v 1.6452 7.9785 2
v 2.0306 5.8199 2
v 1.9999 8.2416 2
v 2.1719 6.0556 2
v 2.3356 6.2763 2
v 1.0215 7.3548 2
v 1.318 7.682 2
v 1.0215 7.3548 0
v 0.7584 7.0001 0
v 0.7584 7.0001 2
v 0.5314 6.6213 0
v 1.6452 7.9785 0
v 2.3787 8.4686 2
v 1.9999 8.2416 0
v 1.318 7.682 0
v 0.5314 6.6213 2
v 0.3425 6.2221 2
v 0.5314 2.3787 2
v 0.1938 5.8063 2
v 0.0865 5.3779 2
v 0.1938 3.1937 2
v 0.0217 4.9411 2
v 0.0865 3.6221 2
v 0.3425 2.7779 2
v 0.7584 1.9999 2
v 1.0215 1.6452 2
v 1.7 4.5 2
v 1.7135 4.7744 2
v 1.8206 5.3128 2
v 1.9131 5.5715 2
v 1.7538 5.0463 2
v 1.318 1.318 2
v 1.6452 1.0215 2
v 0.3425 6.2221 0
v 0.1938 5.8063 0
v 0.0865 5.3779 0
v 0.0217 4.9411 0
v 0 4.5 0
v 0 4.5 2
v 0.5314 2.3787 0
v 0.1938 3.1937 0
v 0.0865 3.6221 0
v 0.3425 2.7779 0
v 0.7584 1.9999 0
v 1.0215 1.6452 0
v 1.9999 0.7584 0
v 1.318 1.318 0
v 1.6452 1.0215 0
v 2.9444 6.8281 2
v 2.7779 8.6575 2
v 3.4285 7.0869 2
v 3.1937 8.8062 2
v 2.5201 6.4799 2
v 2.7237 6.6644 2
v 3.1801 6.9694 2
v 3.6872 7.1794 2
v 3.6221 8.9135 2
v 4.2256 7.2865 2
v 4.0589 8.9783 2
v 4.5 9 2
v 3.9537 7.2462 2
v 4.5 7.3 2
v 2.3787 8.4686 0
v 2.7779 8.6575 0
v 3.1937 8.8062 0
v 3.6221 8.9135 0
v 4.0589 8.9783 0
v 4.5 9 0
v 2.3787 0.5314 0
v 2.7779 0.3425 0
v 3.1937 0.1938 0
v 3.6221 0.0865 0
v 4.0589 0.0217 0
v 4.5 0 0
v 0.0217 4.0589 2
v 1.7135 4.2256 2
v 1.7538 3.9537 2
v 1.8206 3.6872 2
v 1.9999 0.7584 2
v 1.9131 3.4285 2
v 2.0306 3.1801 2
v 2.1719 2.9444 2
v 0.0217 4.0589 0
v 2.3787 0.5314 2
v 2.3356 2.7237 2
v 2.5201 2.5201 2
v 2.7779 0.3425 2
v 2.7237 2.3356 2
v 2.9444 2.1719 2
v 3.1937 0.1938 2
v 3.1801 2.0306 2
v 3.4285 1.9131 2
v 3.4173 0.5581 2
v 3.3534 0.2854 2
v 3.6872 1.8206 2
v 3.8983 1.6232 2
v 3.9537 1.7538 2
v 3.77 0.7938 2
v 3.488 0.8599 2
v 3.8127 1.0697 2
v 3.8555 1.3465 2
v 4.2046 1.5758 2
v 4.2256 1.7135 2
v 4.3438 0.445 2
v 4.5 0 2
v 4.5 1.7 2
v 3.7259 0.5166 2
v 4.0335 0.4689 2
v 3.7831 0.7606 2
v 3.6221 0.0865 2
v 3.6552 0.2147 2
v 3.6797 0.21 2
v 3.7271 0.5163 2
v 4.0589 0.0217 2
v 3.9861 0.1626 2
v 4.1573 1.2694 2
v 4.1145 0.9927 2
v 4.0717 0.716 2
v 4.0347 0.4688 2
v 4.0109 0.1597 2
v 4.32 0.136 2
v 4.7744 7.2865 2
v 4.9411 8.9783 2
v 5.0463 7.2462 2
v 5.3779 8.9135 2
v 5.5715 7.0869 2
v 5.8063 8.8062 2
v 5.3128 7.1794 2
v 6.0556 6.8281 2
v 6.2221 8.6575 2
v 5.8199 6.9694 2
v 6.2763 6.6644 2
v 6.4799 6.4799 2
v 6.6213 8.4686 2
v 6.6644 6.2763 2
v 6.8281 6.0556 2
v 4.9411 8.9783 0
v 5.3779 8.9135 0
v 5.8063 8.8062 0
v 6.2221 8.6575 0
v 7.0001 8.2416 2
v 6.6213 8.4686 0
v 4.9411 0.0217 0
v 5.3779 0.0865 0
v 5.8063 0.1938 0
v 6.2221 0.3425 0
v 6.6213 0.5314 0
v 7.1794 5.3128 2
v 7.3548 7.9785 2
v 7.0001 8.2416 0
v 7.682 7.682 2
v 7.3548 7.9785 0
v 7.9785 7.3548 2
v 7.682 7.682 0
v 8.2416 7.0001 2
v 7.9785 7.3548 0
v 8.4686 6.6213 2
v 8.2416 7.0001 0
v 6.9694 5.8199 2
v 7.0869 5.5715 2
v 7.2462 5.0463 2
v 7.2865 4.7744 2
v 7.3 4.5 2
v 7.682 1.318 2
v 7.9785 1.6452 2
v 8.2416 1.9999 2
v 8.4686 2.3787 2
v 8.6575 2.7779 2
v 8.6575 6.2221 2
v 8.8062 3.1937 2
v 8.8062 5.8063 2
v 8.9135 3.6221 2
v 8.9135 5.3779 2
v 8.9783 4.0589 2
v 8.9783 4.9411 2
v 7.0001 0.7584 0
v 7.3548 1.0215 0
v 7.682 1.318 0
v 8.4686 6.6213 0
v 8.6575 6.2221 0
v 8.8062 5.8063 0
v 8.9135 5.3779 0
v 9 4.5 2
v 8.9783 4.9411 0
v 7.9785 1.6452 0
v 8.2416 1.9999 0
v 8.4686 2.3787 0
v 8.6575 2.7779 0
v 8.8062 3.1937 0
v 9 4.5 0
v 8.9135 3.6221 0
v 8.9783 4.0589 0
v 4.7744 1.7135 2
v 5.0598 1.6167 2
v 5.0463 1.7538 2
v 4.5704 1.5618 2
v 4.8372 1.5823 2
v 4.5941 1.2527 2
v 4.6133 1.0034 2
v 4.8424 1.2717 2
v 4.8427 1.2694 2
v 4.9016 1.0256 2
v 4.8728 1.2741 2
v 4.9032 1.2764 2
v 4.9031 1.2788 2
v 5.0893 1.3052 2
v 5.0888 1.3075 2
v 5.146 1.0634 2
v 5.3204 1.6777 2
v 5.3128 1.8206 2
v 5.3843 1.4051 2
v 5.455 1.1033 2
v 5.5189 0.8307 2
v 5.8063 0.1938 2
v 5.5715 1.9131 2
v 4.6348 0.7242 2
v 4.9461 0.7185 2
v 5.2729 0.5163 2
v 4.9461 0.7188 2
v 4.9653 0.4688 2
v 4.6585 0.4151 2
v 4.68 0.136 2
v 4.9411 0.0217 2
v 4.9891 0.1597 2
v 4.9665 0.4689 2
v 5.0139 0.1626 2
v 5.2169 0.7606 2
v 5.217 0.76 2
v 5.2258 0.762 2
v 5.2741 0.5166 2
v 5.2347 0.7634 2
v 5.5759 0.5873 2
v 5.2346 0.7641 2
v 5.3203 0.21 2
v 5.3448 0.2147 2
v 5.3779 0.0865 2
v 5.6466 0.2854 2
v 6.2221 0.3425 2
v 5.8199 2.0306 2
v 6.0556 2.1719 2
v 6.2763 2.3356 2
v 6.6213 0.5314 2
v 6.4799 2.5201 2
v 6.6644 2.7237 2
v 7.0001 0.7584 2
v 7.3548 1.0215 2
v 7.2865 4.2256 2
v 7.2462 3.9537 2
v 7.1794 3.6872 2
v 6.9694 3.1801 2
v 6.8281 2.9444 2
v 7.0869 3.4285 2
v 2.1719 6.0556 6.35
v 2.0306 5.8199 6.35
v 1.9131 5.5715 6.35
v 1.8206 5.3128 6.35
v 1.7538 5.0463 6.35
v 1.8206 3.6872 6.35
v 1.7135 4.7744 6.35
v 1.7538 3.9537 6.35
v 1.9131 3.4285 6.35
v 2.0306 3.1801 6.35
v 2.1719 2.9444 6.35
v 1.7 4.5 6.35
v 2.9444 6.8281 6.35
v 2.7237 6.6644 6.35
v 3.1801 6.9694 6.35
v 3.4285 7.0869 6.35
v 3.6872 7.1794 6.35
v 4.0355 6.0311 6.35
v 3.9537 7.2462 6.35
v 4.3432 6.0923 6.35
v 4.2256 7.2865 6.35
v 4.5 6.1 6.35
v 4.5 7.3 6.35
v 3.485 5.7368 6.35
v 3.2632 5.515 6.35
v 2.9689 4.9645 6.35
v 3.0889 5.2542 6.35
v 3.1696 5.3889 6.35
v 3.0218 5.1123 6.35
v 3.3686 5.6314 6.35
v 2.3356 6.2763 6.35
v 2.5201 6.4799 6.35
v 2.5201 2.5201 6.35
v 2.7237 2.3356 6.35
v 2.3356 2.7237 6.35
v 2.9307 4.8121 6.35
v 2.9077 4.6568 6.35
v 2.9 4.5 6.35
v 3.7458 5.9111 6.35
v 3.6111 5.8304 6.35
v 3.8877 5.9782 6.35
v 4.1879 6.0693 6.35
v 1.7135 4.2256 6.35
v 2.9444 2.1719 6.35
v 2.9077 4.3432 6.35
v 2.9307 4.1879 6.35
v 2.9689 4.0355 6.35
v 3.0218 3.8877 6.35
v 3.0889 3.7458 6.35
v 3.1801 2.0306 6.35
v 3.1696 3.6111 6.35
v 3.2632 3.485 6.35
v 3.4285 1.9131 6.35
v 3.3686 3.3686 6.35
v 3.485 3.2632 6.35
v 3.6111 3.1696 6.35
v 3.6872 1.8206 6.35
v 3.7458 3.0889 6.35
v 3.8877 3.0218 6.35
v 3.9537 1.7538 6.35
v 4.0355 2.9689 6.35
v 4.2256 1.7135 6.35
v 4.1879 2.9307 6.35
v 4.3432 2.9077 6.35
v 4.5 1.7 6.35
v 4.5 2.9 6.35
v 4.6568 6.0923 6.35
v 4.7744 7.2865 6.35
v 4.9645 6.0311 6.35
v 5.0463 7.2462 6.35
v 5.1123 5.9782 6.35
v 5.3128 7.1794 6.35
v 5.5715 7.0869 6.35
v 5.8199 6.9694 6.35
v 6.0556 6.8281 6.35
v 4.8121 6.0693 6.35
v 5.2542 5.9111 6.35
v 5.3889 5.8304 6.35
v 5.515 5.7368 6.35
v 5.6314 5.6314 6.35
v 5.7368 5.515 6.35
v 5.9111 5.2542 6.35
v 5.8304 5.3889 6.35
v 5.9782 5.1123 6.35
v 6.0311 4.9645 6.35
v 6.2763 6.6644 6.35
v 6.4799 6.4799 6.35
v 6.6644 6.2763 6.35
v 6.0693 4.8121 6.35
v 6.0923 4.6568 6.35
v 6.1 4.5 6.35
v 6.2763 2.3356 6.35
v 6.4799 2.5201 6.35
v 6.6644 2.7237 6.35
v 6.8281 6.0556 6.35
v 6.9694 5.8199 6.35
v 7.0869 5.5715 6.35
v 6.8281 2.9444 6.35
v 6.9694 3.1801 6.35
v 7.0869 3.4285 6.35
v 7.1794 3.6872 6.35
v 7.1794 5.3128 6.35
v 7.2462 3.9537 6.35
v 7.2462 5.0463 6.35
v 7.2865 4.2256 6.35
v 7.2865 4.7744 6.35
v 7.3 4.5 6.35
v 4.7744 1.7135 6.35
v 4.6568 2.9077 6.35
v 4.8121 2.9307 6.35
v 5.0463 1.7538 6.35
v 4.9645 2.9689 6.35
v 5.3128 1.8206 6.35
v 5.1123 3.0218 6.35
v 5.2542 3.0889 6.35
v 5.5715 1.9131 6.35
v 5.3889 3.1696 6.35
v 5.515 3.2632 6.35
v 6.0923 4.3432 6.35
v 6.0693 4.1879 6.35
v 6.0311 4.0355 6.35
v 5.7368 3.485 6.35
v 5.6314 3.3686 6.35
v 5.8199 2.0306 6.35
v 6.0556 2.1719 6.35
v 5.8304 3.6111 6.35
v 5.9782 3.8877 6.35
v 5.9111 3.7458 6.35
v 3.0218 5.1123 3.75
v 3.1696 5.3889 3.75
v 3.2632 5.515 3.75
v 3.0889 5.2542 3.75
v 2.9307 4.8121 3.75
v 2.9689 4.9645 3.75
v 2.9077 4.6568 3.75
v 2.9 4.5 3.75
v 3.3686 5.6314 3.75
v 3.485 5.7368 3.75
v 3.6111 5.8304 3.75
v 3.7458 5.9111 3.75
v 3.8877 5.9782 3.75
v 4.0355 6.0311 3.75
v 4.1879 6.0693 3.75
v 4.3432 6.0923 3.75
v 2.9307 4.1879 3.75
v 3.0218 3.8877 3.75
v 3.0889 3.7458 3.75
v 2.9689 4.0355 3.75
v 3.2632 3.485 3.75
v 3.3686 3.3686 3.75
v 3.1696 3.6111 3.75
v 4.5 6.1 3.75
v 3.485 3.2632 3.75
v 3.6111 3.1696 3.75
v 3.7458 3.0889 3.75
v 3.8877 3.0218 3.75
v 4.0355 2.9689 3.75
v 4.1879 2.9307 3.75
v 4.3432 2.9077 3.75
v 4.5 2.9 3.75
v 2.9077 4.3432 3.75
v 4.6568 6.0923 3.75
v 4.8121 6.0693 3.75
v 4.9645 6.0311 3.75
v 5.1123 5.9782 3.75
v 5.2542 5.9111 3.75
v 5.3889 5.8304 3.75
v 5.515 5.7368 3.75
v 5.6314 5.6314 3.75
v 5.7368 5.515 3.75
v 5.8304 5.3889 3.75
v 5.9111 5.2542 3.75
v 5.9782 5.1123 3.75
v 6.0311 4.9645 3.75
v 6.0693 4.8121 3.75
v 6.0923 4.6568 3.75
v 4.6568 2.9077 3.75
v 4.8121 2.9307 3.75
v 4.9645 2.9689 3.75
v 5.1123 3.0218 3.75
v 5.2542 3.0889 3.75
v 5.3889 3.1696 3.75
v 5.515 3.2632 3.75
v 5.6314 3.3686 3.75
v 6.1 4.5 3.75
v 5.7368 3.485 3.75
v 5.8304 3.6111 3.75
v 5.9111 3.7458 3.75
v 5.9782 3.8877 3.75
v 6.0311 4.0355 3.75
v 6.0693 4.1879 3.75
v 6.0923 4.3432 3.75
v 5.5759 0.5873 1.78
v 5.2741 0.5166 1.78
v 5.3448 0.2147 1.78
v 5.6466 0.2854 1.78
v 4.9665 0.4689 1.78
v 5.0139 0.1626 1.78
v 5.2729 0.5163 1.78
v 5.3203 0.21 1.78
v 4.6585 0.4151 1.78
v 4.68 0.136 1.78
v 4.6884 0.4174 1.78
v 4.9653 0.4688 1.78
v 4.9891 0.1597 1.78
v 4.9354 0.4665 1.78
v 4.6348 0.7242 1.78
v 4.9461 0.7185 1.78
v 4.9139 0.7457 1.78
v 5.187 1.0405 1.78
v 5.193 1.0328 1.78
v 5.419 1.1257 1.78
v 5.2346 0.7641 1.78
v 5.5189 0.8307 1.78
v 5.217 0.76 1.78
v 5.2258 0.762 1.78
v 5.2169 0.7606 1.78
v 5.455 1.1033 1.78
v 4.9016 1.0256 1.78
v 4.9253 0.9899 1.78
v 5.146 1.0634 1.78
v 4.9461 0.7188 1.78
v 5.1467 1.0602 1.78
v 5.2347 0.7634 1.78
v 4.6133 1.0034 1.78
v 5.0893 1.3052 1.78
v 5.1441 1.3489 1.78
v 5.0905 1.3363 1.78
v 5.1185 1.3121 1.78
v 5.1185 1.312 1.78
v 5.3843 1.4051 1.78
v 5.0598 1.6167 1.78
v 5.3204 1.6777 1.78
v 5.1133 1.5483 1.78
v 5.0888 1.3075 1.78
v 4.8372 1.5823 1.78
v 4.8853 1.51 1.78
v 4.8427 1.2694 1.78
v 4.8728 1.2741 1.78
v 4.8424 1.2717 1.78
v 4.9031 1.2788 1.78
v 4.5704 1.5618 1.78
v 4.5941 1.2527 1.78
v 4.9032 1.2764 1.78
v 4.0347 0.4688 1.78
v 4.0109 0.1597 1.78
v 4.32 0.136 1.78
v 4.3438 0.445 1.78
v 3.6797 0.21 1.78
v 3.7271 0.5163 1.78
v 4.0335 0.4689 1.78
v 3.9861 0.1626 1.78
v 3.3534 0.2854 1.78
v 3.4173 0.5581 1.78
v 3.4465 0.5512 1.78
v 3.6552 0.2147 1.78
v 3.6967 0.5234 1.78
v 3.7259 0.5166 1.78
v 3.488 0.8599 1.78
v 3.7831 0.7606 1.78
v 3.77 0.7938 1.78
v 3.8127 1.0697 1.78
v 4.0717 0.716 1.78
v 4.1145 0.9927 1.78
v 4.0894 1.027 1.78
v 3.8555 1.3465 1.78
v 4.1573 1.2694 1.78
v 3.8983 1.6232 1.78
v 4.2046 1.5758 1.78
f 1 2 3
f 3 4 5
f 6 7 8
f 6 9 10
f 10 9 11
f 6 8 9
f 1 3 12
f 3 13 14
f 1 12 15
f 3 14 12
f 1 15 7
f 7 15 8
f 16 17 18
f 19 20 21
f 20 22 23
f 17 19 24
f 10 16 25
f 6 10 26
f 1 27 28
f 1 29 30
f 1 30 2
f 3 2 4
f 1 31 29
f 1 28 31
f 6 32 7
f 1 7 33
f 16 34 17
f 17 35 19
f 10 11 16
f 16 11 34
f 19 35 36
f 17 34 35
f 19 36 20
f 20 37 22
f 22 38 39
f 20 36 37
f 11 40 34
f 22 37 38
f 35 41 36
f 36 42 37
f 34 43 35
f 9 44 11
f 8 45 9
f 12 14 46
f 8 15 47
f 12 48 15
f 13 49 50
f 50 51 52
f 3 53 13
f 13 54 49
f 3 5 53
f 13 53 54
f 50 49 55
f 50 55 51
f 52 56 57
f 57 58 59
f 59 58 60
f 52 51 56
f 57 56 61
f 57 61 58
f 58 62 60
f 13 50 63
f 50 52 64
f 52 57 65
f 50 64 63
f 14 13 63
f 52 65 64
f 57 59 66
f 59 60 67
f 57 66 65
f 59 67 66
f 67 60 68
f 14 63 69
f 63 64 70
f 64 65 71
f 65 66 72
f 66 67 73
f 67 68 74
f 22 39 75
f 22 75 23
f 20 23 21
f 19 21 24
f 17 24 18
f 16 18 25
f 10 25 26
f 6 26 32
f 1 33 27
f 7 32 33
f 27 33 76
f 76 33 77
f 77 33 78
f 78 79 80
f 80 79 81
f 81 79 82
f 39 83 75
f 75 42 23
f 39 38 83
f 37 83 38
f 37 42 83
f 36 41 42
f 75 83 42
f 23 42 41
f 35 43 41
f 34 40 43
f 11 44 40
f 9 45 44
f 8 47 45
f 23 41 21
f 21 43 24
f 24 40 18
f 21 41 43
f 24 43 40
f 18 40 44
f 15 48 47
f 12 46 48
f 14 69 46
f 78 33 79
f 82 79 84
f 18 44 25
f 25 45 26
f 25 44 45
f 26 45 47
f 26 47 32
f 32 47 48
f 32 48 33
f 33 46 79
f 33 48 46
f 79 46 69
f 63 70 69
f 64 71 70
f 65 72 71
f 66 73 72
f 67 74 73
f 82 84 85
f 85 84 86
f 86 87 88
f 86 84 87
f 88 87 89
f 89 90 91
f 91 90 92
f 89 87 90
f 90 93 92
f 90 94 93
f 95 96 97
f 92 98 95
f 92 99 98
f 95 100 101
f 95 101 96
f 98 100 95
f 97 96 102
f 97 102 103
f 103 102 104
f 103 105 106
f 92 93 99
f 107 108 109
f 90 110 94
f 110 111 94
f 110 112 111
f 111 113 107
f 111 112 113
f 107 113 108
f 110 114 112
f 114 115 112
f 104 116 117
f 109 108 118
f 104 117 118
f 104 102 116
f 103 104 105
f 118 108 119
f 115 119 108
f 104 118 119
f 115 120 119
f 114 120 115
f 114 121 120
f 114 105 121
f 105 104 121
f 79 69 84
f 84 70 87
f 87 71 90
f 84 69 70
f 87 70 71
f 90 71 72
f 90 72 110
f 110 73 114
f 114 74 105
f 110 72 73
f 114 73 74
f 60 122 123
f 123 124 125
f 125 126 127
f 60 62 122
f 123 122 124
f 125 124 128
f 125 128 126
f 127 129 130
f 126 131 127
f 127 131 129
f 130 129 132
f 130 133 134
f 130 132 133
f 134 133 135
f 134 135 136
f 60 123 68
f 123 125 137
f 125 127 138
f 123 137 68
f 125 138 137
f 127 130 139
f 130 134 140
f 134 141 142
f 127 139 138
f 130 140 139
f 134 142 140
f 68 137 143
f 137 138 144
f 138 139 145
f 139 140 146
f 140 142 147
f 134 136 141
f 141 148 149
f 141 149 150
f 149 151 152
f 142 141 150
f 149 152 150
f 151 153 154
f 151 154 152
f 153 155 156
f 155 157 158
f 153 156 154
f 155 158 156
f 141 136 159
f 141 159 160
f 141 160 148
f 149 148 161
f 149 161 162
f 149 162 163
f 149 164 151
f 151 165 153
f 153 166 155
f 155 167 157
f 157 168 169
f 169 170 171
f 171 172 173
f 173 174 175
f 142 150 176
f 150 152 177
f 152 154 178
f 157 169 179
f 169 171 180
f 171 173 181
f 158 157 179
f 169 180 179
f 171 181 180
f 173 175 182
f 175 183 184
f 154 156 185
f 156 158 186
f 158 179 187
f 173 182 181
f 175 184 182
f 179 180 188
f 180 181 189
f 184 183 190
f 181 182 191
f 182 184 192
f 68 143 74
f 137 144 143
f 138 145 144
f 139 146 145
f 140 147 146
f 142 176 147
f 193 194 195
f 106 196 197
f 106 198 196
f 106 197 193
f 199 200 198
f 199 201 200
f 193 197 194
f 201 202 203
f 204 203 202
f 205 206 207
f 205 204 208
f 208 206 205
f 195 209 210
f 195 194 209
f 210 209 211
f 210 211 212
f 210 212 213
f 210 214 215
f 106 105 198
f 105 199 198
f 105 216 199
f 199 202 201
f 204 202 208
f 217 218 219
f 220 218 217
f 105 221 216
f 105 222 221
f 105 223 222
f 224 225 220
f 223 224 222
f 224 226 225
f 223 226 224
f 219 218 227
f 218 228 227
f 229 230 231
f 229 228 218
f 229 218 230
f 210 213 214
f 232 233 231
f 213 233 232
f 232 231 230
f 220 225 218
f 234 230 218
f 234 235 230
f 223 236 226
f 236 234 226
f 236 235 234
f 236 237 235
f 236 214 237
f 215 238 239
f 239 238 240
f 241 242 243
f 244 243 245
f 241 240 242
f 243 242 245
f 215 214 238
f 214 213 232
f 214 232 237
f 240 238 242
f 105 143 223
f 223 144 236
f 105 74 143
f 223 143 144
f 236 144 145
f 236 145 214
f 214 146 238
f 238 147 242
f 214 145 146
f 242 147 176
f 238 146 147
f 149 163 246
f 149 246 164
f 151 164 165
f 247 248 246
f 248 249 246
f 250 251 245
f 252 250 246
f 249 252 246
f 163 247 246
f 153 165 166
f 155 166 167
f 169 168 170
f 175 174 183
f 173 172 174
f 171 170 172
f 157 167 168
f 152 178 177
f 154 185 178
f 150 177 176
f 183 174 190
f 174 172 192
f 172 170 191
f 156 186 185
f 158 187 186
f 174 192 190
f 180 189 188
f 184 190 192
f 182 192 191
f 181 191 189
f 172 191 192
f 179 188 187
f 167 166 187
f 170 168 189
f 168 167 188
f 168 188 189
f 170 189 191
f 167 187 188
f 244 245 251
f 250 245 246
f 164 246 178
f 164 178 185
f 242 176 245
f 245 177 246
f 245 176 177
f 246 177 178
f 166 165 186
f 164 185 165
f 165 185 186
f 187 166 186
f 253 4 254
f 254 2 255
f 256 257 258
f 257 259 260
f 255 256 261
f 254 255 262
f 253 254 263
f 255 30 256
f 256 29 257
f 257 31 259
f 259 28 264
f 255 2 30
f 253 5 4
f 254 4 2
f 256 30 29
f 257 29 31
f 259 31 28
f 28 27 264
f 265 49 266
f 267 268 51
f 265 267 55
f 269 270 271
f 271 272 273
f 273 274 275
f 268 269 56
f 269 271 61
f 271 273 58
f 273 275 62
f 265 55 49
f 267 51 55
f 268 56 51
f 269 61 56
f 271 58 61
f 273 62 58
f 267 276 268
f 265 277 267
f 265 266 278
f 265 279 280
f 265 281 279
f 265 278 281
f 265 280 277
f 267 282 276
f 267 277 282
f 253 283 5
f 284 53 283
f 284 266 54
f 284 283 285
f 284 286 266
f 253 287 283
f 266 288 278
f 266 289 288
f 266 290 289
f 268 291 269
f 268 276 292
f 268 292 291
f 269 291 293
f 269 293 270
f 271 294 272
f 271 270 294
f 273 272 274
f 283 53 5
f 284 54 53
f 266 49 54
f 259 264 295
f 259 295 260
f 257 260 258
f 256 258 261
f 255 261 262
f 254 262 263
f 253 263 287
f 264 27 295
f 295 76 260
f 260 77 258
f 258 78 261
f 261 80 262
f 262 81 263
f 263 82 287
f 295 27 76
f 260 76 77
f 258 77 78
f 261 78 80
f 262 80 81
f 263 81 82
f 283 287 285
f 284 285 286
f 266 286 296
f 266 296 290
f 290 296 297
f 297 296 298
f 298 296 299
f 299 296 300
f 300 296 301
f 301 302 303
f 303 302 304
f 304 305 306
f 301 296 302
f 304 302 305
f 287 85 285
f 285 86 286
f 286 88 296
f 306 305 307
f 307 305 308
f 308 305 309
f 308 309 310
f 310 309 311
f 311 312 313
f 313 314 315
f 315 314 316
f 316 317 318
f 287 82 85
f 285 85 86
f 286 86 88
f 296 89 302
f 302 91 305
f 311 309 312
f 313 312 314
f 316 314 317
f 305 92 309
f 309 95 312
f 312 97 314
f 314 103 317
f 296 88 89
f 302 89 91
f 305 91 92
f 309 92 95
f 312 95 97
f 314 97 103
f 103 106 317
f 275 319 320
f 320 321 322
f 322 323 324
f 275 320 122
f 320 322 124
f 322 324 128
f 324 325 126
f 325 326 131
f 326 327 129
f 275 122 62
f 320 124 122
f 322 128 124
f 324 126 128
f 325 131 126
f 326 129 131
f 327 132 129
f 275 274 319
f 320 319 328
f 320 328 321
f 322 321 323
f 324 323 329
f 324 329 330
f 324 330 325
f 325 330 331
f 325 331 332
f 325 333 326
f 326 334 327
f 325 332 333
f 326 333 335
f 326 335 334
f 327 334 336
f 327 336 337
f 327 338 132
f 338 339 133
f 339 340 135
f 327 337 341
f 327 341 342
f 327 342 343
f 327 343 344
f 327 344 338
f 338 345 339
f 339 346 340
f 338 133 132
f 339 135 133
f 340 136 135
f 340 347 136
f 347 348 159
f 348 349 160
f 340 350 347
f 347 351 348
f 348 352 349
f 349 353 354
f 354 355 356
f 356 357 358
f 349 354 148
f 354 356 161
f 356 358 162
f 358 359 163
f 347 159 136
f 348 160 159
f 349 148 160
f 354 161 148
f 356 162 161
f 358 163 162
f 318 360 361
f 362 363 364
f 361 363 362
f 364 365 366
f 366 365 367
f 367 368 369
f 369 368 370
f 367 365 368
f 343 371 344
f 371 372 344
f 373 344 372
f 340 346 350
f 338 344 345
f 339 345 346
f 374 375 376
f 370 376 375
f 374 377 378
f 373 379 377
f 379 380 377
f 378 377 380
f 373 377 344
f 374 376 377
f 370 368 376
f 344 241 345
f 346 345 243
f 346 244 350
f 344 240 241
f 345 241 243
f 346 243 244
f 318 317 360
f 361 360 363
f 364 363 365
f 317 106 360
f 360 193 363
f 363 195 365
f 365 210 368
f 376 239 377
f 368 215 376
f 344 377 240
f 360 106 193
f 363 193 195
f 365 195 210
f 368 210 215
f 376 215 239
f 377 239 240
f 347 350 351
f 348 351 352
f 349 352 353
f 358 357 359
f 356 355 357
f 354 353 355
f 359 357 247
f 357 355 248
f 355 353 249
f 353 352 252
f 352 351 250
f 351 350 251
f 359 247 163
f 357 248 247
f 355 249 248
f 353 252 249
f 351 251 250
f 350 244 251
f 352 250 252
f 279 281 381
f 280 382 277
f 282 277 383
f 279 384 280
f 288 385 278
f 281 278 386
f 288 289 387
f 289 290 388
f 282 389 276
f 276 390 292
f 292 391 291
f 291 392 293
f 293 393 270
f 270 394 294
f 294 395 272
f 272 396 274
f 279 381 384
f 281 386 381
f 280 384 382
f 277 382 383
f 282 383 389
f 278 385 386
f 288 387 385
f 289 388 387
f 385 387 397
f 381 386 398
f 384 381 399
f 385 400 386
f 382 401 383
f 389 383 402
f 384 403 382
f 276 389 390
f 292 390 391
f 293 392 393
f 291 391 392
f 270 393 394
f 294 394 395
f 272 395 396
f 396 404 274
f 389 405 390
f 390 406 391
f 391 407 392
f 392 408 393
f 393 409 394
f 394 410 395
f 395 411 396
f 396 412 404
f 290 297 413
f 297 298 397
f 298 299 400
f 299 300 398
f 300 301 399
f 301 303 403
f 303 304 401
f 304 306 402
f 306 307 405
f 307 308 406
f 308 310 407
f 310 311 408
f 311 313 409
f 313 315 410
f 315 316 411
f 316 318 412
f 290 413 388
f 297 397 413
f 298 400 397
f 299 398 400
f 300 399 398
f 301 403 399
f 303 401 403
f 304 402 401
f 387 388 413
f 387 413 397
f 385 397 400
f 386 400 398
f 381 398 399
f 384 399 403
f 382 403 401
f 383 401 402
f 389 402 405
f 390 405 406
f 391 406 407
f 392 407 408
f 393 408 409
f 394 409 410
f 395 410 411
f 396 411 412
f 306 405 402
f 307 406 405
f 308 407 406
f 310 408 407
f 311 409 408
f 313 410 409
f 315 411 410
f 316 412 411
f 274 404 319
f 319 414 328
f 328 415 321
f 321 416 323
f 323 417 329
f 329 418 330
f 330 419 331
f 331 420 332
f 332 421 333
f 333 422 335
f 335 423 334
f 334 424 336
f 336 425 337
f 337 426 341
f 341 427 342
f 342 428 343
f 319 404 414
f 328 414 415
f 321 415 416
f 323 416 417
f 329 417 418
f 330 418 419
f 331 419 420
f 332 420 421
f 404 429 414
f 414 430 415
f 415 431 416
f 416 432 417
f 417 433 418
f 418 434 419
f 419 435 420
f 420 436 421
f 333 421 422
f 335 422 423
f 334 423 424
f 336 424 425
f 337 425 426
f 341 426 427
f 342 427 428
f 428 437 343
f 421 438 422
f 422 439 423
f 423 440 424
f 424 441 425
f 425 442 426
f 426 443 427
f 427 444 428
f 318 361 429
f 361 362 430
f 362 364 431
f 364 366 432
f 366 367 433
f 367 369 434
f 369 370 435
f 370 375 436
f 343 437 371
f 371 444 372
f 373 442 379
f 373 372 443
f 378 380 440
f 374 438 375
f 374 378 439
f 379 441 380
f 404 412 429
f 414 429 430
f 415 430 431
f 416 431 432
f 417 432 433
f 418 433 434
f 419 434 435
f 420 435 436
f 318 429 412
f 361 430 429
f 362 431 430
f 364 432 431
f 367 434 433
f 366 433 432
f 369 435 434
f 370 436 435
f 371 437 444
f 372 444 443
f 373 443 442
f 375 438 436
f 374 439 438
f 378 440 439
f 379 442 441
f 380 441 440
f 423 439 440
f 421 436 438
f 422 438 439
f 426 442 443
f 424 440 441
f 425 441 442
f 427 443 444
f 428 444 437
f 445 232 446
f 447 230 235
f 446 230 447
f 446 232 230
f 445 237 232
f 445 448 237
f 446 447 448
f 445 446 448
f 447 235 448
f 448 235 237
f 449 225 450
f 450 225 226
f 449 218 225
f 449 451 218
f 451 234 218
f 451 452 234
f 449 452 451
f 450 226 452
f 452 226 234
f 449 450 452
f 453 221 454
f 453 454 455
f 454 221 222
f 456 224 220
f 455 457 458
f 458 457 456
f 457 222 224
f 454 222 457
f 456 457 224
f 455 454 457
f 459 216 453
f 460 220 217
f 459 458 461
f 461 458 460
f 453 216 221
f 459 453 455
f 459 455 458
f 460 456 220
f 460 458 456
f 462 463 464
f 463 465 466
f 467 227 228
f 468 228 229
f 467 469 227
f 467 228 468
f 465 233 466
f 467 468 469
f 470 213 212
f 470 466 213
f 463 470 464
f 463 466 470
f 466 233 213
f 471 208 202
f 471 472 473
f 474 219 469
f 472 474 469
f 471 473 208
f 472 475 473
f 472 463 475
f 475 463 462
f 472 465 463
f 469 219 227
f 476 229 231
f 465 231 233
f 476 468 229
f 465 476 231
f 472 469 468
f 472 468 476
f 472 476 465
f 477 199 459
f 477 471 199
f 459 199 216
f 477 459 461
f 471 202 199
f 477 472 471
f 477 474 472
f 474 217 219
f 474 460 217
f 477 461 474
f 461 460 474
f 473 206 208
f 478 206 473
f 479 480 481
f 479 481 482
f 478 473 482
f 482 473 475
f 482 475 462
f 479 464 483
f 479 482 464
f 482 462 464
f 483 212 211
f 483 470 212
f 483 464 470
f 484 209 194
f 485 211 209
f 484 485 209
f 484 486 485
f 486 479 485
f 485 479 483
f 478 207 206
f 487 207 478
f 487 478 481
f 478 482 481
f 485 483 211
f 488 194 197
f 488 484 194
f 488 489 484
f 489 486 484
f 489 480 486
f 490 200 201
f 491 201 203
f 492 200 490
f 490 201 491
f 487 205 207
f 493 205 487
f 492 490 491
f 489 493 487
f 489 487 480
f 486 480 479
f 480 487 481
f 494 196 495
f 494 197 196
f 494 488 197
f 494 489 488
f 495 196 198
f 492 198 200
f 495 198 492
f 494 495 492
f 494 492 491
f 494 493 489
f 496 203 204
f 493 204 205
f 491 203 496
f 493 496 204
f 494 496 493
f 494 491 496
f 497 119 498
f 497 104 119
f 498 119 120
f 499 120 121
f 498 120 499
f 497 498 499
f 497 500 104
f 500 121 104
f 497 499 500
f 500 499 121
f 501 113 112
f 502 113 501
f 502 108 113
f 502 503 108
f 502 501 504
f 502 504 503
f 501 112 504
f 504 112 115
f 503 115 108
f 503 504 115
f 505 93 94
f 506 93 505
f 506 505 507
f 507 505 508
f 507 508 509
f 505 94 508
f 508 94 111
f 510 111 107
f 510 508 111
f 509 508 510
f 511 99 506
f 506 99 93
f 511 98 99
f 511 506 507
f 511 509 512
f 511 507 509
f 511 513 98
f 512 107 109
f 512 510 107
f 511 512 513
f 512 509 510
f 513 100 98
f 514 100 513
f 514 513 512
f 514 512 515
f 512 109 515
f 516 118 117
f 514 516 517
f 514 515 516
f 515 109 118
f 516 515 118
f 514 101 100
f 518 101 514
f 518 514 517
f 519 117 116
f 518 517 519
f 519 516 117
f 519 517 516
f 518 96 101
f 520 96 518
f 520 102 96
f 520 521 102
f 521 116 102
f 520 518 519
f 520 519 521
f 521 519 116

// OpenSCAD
// 頂按式按鍵帽
$fn=64;
translate([-70.5,8.5,131.3]){rotate([180,0,0]){difference(){difference(){union(){translate([75,4,129.3]){cylinder(h=2,d1=9,d2=9,$fn=64);}translate([75,4,124.95]){cylinder(h=4.85,d1=5.6,d2=5.6,$fn=64);}}translate([75,4,124.75]){cylinder(h=2.8,d1=3.2,d2=3.2,$fn=64);}}union(){union(){union(){union(){union(){union(){union(){union(){union(){union(){union(){union(){union(){union(){union(){union(){union(){multmatrix([[-0.97364,0.22811,0,75.96035],[0.22811,0.97364,0,8.099],[0,0,-1,129.3],[0,0,0,1]]){translate([-0.155,-0.155,-0.22]){cube([0.31,0.31,0.34]);}}multmatrix([[-0.98825,0.15282,0,75.64339],[0.15282,0.98825,0,8.16055],[0,0,-1,129.3],[0,0,0,1]]){translate([-0.155,-0.155,-0.22]){cube([0.31,0.31,0.34]);}}}multmatrix([[-0.99706,0.07664,0,75.32264],[0.07664,0.99706,0,8.19762],[0,0,-1,129.3],[0,0,0,1]]){translate([-0.155,-0.155,-0.22]){cube([0.31,0.31,0.34]);}}}multmatrix([[-0.99706,0.07664,0,75.30118],[0.07664,0.99706,0,7.91844],[0,0,-1,129.3],[0,0,0,1]]){translate([-0.155,-0.155,-0.22]){cube([0.31,0.31,0.34]);}}}multmatrix([[-0.97364,0.22811,0,75.8326],[0.22811,0.97364,0,7.55377],[0,0,-1,129.3],[0,0,0,1]]){translate([-0.155,-0.155,-0.22]){cube([0.31,0.31,0.34]);}}}multmatrix([[-0.98825,0.15282,0,75.55781],[0.15282,0.98825,0,7.60713],[0,0,-1,129.3],[0,0,0,1]]){translate([-0.155,-0.155,-0.22]){cube([0.31,0.31,0.34]);}}}multmatrix([[-0.99706,0.07664,0,75.27973],[0.07664,0.99706,0,7.63927],[0,0,-1,129.3],[0,0,0,1]]){translate([-0.155,-0.155,-0.22]){cube([0.31,0.31,0.34]);}}}multmatrix([[-0.97364,0.22811,0,75.76873],[0.22811,0.97364,0,7.28115],[0,0,-1,129.3],[0,0,0,1]]){translate([-0.155,-0.155,-0.22]){cube([0.31,0.31,0.34]);}}}multmatrix([[-0.97364,0.22811,0,75.70486],[0.22811,0.97364,0,7.00853],[0,0,-1,129.3],[0,0,0,1]]){translate([-0.155,-0.155,-0.22]){cube([0.31,0.31,0.34]);}}}multmatrix([[-0.98825,0.15282,0,75.47222],[0.15282,0.98825,0,7.0537],[0,0,-1,129.3],[0,0,0,1]]){translate([-0.155,-0.155,-0.22]){cube([0.31,0.31,0.34]);}}}multmatrix([[-0.99706,0.07664,0,75.23681],[0.07664,0.99706,0,7.08091],[0,0,-1,129.3],[0,0,0,1]]){translate([-0.155,-0.155,-0.22]){cube([0.31,0.31,0.34]);}}}multmatrix([[-0.99706,-0.07664,0,74.67736],[-0.07664,0.99706,0,8.19762],[0,0,-1,129.3],[0,0,0,1]]){translate([-0.155,-0.155,-0.22]){cube([0.31,0.31,0.34]);}}}multmatrix([[-0.98825,-0.15282,0,74.35661],[-0.15282,0.98825,0,8.16055],[0,0,-1,129.3],[0,0,0,1]]){translate([-0.155,-0.155,-0.22]){cube([0.31,0.31,0.34]);}}}multmatrix([[-0.97364,-0.22811,0,74.03965],[-0.22811,0.97364,0,8.099],[0,0,-1,129.3],[0,0,0,1]]){translate([-0.155,-0.155,-0.22]){cube([0.31,0.31,0.34]);}}}multmatrix([[-0.97364,-0.22811,0,74.10352],[-0.22811,0.97364,0,7.82639],[0,0,-1,129.3],[0,0,0,1]]){translate([-0.155,-0.155,-0.22]){cube([0.31,0.31,0.34]);}}}multmatrix([[-0.98825,-0.15282,0,74.44219],[-0.15282,0.98825,0,7.60713],[0,0,-1,129.3],[0,0,0,1]]){translate([-0.155,-0.155,-0.22]){cube([0.31,0.31,0.34]);}}}multmatrix([[-0.98825,-0.15282,0,74.48498],[-0.15282,0.98825,0,7.33041],[0,0,-1,129.3],[0,0,0,1]]){translate([-0.155,-0.155,-0.22]){cube([0.31,0.31,0.34]);}}}multmatrix([[-0.98825,-0.15282,0,74.52778],[-0.15282,0.98825,0,7.0537],[0,0,-1,129.3],[0,0,0,1]]){translate([-0.155,-0.155,-0.22]){cube([0.31,0.31,0.34]);}}}}}}
